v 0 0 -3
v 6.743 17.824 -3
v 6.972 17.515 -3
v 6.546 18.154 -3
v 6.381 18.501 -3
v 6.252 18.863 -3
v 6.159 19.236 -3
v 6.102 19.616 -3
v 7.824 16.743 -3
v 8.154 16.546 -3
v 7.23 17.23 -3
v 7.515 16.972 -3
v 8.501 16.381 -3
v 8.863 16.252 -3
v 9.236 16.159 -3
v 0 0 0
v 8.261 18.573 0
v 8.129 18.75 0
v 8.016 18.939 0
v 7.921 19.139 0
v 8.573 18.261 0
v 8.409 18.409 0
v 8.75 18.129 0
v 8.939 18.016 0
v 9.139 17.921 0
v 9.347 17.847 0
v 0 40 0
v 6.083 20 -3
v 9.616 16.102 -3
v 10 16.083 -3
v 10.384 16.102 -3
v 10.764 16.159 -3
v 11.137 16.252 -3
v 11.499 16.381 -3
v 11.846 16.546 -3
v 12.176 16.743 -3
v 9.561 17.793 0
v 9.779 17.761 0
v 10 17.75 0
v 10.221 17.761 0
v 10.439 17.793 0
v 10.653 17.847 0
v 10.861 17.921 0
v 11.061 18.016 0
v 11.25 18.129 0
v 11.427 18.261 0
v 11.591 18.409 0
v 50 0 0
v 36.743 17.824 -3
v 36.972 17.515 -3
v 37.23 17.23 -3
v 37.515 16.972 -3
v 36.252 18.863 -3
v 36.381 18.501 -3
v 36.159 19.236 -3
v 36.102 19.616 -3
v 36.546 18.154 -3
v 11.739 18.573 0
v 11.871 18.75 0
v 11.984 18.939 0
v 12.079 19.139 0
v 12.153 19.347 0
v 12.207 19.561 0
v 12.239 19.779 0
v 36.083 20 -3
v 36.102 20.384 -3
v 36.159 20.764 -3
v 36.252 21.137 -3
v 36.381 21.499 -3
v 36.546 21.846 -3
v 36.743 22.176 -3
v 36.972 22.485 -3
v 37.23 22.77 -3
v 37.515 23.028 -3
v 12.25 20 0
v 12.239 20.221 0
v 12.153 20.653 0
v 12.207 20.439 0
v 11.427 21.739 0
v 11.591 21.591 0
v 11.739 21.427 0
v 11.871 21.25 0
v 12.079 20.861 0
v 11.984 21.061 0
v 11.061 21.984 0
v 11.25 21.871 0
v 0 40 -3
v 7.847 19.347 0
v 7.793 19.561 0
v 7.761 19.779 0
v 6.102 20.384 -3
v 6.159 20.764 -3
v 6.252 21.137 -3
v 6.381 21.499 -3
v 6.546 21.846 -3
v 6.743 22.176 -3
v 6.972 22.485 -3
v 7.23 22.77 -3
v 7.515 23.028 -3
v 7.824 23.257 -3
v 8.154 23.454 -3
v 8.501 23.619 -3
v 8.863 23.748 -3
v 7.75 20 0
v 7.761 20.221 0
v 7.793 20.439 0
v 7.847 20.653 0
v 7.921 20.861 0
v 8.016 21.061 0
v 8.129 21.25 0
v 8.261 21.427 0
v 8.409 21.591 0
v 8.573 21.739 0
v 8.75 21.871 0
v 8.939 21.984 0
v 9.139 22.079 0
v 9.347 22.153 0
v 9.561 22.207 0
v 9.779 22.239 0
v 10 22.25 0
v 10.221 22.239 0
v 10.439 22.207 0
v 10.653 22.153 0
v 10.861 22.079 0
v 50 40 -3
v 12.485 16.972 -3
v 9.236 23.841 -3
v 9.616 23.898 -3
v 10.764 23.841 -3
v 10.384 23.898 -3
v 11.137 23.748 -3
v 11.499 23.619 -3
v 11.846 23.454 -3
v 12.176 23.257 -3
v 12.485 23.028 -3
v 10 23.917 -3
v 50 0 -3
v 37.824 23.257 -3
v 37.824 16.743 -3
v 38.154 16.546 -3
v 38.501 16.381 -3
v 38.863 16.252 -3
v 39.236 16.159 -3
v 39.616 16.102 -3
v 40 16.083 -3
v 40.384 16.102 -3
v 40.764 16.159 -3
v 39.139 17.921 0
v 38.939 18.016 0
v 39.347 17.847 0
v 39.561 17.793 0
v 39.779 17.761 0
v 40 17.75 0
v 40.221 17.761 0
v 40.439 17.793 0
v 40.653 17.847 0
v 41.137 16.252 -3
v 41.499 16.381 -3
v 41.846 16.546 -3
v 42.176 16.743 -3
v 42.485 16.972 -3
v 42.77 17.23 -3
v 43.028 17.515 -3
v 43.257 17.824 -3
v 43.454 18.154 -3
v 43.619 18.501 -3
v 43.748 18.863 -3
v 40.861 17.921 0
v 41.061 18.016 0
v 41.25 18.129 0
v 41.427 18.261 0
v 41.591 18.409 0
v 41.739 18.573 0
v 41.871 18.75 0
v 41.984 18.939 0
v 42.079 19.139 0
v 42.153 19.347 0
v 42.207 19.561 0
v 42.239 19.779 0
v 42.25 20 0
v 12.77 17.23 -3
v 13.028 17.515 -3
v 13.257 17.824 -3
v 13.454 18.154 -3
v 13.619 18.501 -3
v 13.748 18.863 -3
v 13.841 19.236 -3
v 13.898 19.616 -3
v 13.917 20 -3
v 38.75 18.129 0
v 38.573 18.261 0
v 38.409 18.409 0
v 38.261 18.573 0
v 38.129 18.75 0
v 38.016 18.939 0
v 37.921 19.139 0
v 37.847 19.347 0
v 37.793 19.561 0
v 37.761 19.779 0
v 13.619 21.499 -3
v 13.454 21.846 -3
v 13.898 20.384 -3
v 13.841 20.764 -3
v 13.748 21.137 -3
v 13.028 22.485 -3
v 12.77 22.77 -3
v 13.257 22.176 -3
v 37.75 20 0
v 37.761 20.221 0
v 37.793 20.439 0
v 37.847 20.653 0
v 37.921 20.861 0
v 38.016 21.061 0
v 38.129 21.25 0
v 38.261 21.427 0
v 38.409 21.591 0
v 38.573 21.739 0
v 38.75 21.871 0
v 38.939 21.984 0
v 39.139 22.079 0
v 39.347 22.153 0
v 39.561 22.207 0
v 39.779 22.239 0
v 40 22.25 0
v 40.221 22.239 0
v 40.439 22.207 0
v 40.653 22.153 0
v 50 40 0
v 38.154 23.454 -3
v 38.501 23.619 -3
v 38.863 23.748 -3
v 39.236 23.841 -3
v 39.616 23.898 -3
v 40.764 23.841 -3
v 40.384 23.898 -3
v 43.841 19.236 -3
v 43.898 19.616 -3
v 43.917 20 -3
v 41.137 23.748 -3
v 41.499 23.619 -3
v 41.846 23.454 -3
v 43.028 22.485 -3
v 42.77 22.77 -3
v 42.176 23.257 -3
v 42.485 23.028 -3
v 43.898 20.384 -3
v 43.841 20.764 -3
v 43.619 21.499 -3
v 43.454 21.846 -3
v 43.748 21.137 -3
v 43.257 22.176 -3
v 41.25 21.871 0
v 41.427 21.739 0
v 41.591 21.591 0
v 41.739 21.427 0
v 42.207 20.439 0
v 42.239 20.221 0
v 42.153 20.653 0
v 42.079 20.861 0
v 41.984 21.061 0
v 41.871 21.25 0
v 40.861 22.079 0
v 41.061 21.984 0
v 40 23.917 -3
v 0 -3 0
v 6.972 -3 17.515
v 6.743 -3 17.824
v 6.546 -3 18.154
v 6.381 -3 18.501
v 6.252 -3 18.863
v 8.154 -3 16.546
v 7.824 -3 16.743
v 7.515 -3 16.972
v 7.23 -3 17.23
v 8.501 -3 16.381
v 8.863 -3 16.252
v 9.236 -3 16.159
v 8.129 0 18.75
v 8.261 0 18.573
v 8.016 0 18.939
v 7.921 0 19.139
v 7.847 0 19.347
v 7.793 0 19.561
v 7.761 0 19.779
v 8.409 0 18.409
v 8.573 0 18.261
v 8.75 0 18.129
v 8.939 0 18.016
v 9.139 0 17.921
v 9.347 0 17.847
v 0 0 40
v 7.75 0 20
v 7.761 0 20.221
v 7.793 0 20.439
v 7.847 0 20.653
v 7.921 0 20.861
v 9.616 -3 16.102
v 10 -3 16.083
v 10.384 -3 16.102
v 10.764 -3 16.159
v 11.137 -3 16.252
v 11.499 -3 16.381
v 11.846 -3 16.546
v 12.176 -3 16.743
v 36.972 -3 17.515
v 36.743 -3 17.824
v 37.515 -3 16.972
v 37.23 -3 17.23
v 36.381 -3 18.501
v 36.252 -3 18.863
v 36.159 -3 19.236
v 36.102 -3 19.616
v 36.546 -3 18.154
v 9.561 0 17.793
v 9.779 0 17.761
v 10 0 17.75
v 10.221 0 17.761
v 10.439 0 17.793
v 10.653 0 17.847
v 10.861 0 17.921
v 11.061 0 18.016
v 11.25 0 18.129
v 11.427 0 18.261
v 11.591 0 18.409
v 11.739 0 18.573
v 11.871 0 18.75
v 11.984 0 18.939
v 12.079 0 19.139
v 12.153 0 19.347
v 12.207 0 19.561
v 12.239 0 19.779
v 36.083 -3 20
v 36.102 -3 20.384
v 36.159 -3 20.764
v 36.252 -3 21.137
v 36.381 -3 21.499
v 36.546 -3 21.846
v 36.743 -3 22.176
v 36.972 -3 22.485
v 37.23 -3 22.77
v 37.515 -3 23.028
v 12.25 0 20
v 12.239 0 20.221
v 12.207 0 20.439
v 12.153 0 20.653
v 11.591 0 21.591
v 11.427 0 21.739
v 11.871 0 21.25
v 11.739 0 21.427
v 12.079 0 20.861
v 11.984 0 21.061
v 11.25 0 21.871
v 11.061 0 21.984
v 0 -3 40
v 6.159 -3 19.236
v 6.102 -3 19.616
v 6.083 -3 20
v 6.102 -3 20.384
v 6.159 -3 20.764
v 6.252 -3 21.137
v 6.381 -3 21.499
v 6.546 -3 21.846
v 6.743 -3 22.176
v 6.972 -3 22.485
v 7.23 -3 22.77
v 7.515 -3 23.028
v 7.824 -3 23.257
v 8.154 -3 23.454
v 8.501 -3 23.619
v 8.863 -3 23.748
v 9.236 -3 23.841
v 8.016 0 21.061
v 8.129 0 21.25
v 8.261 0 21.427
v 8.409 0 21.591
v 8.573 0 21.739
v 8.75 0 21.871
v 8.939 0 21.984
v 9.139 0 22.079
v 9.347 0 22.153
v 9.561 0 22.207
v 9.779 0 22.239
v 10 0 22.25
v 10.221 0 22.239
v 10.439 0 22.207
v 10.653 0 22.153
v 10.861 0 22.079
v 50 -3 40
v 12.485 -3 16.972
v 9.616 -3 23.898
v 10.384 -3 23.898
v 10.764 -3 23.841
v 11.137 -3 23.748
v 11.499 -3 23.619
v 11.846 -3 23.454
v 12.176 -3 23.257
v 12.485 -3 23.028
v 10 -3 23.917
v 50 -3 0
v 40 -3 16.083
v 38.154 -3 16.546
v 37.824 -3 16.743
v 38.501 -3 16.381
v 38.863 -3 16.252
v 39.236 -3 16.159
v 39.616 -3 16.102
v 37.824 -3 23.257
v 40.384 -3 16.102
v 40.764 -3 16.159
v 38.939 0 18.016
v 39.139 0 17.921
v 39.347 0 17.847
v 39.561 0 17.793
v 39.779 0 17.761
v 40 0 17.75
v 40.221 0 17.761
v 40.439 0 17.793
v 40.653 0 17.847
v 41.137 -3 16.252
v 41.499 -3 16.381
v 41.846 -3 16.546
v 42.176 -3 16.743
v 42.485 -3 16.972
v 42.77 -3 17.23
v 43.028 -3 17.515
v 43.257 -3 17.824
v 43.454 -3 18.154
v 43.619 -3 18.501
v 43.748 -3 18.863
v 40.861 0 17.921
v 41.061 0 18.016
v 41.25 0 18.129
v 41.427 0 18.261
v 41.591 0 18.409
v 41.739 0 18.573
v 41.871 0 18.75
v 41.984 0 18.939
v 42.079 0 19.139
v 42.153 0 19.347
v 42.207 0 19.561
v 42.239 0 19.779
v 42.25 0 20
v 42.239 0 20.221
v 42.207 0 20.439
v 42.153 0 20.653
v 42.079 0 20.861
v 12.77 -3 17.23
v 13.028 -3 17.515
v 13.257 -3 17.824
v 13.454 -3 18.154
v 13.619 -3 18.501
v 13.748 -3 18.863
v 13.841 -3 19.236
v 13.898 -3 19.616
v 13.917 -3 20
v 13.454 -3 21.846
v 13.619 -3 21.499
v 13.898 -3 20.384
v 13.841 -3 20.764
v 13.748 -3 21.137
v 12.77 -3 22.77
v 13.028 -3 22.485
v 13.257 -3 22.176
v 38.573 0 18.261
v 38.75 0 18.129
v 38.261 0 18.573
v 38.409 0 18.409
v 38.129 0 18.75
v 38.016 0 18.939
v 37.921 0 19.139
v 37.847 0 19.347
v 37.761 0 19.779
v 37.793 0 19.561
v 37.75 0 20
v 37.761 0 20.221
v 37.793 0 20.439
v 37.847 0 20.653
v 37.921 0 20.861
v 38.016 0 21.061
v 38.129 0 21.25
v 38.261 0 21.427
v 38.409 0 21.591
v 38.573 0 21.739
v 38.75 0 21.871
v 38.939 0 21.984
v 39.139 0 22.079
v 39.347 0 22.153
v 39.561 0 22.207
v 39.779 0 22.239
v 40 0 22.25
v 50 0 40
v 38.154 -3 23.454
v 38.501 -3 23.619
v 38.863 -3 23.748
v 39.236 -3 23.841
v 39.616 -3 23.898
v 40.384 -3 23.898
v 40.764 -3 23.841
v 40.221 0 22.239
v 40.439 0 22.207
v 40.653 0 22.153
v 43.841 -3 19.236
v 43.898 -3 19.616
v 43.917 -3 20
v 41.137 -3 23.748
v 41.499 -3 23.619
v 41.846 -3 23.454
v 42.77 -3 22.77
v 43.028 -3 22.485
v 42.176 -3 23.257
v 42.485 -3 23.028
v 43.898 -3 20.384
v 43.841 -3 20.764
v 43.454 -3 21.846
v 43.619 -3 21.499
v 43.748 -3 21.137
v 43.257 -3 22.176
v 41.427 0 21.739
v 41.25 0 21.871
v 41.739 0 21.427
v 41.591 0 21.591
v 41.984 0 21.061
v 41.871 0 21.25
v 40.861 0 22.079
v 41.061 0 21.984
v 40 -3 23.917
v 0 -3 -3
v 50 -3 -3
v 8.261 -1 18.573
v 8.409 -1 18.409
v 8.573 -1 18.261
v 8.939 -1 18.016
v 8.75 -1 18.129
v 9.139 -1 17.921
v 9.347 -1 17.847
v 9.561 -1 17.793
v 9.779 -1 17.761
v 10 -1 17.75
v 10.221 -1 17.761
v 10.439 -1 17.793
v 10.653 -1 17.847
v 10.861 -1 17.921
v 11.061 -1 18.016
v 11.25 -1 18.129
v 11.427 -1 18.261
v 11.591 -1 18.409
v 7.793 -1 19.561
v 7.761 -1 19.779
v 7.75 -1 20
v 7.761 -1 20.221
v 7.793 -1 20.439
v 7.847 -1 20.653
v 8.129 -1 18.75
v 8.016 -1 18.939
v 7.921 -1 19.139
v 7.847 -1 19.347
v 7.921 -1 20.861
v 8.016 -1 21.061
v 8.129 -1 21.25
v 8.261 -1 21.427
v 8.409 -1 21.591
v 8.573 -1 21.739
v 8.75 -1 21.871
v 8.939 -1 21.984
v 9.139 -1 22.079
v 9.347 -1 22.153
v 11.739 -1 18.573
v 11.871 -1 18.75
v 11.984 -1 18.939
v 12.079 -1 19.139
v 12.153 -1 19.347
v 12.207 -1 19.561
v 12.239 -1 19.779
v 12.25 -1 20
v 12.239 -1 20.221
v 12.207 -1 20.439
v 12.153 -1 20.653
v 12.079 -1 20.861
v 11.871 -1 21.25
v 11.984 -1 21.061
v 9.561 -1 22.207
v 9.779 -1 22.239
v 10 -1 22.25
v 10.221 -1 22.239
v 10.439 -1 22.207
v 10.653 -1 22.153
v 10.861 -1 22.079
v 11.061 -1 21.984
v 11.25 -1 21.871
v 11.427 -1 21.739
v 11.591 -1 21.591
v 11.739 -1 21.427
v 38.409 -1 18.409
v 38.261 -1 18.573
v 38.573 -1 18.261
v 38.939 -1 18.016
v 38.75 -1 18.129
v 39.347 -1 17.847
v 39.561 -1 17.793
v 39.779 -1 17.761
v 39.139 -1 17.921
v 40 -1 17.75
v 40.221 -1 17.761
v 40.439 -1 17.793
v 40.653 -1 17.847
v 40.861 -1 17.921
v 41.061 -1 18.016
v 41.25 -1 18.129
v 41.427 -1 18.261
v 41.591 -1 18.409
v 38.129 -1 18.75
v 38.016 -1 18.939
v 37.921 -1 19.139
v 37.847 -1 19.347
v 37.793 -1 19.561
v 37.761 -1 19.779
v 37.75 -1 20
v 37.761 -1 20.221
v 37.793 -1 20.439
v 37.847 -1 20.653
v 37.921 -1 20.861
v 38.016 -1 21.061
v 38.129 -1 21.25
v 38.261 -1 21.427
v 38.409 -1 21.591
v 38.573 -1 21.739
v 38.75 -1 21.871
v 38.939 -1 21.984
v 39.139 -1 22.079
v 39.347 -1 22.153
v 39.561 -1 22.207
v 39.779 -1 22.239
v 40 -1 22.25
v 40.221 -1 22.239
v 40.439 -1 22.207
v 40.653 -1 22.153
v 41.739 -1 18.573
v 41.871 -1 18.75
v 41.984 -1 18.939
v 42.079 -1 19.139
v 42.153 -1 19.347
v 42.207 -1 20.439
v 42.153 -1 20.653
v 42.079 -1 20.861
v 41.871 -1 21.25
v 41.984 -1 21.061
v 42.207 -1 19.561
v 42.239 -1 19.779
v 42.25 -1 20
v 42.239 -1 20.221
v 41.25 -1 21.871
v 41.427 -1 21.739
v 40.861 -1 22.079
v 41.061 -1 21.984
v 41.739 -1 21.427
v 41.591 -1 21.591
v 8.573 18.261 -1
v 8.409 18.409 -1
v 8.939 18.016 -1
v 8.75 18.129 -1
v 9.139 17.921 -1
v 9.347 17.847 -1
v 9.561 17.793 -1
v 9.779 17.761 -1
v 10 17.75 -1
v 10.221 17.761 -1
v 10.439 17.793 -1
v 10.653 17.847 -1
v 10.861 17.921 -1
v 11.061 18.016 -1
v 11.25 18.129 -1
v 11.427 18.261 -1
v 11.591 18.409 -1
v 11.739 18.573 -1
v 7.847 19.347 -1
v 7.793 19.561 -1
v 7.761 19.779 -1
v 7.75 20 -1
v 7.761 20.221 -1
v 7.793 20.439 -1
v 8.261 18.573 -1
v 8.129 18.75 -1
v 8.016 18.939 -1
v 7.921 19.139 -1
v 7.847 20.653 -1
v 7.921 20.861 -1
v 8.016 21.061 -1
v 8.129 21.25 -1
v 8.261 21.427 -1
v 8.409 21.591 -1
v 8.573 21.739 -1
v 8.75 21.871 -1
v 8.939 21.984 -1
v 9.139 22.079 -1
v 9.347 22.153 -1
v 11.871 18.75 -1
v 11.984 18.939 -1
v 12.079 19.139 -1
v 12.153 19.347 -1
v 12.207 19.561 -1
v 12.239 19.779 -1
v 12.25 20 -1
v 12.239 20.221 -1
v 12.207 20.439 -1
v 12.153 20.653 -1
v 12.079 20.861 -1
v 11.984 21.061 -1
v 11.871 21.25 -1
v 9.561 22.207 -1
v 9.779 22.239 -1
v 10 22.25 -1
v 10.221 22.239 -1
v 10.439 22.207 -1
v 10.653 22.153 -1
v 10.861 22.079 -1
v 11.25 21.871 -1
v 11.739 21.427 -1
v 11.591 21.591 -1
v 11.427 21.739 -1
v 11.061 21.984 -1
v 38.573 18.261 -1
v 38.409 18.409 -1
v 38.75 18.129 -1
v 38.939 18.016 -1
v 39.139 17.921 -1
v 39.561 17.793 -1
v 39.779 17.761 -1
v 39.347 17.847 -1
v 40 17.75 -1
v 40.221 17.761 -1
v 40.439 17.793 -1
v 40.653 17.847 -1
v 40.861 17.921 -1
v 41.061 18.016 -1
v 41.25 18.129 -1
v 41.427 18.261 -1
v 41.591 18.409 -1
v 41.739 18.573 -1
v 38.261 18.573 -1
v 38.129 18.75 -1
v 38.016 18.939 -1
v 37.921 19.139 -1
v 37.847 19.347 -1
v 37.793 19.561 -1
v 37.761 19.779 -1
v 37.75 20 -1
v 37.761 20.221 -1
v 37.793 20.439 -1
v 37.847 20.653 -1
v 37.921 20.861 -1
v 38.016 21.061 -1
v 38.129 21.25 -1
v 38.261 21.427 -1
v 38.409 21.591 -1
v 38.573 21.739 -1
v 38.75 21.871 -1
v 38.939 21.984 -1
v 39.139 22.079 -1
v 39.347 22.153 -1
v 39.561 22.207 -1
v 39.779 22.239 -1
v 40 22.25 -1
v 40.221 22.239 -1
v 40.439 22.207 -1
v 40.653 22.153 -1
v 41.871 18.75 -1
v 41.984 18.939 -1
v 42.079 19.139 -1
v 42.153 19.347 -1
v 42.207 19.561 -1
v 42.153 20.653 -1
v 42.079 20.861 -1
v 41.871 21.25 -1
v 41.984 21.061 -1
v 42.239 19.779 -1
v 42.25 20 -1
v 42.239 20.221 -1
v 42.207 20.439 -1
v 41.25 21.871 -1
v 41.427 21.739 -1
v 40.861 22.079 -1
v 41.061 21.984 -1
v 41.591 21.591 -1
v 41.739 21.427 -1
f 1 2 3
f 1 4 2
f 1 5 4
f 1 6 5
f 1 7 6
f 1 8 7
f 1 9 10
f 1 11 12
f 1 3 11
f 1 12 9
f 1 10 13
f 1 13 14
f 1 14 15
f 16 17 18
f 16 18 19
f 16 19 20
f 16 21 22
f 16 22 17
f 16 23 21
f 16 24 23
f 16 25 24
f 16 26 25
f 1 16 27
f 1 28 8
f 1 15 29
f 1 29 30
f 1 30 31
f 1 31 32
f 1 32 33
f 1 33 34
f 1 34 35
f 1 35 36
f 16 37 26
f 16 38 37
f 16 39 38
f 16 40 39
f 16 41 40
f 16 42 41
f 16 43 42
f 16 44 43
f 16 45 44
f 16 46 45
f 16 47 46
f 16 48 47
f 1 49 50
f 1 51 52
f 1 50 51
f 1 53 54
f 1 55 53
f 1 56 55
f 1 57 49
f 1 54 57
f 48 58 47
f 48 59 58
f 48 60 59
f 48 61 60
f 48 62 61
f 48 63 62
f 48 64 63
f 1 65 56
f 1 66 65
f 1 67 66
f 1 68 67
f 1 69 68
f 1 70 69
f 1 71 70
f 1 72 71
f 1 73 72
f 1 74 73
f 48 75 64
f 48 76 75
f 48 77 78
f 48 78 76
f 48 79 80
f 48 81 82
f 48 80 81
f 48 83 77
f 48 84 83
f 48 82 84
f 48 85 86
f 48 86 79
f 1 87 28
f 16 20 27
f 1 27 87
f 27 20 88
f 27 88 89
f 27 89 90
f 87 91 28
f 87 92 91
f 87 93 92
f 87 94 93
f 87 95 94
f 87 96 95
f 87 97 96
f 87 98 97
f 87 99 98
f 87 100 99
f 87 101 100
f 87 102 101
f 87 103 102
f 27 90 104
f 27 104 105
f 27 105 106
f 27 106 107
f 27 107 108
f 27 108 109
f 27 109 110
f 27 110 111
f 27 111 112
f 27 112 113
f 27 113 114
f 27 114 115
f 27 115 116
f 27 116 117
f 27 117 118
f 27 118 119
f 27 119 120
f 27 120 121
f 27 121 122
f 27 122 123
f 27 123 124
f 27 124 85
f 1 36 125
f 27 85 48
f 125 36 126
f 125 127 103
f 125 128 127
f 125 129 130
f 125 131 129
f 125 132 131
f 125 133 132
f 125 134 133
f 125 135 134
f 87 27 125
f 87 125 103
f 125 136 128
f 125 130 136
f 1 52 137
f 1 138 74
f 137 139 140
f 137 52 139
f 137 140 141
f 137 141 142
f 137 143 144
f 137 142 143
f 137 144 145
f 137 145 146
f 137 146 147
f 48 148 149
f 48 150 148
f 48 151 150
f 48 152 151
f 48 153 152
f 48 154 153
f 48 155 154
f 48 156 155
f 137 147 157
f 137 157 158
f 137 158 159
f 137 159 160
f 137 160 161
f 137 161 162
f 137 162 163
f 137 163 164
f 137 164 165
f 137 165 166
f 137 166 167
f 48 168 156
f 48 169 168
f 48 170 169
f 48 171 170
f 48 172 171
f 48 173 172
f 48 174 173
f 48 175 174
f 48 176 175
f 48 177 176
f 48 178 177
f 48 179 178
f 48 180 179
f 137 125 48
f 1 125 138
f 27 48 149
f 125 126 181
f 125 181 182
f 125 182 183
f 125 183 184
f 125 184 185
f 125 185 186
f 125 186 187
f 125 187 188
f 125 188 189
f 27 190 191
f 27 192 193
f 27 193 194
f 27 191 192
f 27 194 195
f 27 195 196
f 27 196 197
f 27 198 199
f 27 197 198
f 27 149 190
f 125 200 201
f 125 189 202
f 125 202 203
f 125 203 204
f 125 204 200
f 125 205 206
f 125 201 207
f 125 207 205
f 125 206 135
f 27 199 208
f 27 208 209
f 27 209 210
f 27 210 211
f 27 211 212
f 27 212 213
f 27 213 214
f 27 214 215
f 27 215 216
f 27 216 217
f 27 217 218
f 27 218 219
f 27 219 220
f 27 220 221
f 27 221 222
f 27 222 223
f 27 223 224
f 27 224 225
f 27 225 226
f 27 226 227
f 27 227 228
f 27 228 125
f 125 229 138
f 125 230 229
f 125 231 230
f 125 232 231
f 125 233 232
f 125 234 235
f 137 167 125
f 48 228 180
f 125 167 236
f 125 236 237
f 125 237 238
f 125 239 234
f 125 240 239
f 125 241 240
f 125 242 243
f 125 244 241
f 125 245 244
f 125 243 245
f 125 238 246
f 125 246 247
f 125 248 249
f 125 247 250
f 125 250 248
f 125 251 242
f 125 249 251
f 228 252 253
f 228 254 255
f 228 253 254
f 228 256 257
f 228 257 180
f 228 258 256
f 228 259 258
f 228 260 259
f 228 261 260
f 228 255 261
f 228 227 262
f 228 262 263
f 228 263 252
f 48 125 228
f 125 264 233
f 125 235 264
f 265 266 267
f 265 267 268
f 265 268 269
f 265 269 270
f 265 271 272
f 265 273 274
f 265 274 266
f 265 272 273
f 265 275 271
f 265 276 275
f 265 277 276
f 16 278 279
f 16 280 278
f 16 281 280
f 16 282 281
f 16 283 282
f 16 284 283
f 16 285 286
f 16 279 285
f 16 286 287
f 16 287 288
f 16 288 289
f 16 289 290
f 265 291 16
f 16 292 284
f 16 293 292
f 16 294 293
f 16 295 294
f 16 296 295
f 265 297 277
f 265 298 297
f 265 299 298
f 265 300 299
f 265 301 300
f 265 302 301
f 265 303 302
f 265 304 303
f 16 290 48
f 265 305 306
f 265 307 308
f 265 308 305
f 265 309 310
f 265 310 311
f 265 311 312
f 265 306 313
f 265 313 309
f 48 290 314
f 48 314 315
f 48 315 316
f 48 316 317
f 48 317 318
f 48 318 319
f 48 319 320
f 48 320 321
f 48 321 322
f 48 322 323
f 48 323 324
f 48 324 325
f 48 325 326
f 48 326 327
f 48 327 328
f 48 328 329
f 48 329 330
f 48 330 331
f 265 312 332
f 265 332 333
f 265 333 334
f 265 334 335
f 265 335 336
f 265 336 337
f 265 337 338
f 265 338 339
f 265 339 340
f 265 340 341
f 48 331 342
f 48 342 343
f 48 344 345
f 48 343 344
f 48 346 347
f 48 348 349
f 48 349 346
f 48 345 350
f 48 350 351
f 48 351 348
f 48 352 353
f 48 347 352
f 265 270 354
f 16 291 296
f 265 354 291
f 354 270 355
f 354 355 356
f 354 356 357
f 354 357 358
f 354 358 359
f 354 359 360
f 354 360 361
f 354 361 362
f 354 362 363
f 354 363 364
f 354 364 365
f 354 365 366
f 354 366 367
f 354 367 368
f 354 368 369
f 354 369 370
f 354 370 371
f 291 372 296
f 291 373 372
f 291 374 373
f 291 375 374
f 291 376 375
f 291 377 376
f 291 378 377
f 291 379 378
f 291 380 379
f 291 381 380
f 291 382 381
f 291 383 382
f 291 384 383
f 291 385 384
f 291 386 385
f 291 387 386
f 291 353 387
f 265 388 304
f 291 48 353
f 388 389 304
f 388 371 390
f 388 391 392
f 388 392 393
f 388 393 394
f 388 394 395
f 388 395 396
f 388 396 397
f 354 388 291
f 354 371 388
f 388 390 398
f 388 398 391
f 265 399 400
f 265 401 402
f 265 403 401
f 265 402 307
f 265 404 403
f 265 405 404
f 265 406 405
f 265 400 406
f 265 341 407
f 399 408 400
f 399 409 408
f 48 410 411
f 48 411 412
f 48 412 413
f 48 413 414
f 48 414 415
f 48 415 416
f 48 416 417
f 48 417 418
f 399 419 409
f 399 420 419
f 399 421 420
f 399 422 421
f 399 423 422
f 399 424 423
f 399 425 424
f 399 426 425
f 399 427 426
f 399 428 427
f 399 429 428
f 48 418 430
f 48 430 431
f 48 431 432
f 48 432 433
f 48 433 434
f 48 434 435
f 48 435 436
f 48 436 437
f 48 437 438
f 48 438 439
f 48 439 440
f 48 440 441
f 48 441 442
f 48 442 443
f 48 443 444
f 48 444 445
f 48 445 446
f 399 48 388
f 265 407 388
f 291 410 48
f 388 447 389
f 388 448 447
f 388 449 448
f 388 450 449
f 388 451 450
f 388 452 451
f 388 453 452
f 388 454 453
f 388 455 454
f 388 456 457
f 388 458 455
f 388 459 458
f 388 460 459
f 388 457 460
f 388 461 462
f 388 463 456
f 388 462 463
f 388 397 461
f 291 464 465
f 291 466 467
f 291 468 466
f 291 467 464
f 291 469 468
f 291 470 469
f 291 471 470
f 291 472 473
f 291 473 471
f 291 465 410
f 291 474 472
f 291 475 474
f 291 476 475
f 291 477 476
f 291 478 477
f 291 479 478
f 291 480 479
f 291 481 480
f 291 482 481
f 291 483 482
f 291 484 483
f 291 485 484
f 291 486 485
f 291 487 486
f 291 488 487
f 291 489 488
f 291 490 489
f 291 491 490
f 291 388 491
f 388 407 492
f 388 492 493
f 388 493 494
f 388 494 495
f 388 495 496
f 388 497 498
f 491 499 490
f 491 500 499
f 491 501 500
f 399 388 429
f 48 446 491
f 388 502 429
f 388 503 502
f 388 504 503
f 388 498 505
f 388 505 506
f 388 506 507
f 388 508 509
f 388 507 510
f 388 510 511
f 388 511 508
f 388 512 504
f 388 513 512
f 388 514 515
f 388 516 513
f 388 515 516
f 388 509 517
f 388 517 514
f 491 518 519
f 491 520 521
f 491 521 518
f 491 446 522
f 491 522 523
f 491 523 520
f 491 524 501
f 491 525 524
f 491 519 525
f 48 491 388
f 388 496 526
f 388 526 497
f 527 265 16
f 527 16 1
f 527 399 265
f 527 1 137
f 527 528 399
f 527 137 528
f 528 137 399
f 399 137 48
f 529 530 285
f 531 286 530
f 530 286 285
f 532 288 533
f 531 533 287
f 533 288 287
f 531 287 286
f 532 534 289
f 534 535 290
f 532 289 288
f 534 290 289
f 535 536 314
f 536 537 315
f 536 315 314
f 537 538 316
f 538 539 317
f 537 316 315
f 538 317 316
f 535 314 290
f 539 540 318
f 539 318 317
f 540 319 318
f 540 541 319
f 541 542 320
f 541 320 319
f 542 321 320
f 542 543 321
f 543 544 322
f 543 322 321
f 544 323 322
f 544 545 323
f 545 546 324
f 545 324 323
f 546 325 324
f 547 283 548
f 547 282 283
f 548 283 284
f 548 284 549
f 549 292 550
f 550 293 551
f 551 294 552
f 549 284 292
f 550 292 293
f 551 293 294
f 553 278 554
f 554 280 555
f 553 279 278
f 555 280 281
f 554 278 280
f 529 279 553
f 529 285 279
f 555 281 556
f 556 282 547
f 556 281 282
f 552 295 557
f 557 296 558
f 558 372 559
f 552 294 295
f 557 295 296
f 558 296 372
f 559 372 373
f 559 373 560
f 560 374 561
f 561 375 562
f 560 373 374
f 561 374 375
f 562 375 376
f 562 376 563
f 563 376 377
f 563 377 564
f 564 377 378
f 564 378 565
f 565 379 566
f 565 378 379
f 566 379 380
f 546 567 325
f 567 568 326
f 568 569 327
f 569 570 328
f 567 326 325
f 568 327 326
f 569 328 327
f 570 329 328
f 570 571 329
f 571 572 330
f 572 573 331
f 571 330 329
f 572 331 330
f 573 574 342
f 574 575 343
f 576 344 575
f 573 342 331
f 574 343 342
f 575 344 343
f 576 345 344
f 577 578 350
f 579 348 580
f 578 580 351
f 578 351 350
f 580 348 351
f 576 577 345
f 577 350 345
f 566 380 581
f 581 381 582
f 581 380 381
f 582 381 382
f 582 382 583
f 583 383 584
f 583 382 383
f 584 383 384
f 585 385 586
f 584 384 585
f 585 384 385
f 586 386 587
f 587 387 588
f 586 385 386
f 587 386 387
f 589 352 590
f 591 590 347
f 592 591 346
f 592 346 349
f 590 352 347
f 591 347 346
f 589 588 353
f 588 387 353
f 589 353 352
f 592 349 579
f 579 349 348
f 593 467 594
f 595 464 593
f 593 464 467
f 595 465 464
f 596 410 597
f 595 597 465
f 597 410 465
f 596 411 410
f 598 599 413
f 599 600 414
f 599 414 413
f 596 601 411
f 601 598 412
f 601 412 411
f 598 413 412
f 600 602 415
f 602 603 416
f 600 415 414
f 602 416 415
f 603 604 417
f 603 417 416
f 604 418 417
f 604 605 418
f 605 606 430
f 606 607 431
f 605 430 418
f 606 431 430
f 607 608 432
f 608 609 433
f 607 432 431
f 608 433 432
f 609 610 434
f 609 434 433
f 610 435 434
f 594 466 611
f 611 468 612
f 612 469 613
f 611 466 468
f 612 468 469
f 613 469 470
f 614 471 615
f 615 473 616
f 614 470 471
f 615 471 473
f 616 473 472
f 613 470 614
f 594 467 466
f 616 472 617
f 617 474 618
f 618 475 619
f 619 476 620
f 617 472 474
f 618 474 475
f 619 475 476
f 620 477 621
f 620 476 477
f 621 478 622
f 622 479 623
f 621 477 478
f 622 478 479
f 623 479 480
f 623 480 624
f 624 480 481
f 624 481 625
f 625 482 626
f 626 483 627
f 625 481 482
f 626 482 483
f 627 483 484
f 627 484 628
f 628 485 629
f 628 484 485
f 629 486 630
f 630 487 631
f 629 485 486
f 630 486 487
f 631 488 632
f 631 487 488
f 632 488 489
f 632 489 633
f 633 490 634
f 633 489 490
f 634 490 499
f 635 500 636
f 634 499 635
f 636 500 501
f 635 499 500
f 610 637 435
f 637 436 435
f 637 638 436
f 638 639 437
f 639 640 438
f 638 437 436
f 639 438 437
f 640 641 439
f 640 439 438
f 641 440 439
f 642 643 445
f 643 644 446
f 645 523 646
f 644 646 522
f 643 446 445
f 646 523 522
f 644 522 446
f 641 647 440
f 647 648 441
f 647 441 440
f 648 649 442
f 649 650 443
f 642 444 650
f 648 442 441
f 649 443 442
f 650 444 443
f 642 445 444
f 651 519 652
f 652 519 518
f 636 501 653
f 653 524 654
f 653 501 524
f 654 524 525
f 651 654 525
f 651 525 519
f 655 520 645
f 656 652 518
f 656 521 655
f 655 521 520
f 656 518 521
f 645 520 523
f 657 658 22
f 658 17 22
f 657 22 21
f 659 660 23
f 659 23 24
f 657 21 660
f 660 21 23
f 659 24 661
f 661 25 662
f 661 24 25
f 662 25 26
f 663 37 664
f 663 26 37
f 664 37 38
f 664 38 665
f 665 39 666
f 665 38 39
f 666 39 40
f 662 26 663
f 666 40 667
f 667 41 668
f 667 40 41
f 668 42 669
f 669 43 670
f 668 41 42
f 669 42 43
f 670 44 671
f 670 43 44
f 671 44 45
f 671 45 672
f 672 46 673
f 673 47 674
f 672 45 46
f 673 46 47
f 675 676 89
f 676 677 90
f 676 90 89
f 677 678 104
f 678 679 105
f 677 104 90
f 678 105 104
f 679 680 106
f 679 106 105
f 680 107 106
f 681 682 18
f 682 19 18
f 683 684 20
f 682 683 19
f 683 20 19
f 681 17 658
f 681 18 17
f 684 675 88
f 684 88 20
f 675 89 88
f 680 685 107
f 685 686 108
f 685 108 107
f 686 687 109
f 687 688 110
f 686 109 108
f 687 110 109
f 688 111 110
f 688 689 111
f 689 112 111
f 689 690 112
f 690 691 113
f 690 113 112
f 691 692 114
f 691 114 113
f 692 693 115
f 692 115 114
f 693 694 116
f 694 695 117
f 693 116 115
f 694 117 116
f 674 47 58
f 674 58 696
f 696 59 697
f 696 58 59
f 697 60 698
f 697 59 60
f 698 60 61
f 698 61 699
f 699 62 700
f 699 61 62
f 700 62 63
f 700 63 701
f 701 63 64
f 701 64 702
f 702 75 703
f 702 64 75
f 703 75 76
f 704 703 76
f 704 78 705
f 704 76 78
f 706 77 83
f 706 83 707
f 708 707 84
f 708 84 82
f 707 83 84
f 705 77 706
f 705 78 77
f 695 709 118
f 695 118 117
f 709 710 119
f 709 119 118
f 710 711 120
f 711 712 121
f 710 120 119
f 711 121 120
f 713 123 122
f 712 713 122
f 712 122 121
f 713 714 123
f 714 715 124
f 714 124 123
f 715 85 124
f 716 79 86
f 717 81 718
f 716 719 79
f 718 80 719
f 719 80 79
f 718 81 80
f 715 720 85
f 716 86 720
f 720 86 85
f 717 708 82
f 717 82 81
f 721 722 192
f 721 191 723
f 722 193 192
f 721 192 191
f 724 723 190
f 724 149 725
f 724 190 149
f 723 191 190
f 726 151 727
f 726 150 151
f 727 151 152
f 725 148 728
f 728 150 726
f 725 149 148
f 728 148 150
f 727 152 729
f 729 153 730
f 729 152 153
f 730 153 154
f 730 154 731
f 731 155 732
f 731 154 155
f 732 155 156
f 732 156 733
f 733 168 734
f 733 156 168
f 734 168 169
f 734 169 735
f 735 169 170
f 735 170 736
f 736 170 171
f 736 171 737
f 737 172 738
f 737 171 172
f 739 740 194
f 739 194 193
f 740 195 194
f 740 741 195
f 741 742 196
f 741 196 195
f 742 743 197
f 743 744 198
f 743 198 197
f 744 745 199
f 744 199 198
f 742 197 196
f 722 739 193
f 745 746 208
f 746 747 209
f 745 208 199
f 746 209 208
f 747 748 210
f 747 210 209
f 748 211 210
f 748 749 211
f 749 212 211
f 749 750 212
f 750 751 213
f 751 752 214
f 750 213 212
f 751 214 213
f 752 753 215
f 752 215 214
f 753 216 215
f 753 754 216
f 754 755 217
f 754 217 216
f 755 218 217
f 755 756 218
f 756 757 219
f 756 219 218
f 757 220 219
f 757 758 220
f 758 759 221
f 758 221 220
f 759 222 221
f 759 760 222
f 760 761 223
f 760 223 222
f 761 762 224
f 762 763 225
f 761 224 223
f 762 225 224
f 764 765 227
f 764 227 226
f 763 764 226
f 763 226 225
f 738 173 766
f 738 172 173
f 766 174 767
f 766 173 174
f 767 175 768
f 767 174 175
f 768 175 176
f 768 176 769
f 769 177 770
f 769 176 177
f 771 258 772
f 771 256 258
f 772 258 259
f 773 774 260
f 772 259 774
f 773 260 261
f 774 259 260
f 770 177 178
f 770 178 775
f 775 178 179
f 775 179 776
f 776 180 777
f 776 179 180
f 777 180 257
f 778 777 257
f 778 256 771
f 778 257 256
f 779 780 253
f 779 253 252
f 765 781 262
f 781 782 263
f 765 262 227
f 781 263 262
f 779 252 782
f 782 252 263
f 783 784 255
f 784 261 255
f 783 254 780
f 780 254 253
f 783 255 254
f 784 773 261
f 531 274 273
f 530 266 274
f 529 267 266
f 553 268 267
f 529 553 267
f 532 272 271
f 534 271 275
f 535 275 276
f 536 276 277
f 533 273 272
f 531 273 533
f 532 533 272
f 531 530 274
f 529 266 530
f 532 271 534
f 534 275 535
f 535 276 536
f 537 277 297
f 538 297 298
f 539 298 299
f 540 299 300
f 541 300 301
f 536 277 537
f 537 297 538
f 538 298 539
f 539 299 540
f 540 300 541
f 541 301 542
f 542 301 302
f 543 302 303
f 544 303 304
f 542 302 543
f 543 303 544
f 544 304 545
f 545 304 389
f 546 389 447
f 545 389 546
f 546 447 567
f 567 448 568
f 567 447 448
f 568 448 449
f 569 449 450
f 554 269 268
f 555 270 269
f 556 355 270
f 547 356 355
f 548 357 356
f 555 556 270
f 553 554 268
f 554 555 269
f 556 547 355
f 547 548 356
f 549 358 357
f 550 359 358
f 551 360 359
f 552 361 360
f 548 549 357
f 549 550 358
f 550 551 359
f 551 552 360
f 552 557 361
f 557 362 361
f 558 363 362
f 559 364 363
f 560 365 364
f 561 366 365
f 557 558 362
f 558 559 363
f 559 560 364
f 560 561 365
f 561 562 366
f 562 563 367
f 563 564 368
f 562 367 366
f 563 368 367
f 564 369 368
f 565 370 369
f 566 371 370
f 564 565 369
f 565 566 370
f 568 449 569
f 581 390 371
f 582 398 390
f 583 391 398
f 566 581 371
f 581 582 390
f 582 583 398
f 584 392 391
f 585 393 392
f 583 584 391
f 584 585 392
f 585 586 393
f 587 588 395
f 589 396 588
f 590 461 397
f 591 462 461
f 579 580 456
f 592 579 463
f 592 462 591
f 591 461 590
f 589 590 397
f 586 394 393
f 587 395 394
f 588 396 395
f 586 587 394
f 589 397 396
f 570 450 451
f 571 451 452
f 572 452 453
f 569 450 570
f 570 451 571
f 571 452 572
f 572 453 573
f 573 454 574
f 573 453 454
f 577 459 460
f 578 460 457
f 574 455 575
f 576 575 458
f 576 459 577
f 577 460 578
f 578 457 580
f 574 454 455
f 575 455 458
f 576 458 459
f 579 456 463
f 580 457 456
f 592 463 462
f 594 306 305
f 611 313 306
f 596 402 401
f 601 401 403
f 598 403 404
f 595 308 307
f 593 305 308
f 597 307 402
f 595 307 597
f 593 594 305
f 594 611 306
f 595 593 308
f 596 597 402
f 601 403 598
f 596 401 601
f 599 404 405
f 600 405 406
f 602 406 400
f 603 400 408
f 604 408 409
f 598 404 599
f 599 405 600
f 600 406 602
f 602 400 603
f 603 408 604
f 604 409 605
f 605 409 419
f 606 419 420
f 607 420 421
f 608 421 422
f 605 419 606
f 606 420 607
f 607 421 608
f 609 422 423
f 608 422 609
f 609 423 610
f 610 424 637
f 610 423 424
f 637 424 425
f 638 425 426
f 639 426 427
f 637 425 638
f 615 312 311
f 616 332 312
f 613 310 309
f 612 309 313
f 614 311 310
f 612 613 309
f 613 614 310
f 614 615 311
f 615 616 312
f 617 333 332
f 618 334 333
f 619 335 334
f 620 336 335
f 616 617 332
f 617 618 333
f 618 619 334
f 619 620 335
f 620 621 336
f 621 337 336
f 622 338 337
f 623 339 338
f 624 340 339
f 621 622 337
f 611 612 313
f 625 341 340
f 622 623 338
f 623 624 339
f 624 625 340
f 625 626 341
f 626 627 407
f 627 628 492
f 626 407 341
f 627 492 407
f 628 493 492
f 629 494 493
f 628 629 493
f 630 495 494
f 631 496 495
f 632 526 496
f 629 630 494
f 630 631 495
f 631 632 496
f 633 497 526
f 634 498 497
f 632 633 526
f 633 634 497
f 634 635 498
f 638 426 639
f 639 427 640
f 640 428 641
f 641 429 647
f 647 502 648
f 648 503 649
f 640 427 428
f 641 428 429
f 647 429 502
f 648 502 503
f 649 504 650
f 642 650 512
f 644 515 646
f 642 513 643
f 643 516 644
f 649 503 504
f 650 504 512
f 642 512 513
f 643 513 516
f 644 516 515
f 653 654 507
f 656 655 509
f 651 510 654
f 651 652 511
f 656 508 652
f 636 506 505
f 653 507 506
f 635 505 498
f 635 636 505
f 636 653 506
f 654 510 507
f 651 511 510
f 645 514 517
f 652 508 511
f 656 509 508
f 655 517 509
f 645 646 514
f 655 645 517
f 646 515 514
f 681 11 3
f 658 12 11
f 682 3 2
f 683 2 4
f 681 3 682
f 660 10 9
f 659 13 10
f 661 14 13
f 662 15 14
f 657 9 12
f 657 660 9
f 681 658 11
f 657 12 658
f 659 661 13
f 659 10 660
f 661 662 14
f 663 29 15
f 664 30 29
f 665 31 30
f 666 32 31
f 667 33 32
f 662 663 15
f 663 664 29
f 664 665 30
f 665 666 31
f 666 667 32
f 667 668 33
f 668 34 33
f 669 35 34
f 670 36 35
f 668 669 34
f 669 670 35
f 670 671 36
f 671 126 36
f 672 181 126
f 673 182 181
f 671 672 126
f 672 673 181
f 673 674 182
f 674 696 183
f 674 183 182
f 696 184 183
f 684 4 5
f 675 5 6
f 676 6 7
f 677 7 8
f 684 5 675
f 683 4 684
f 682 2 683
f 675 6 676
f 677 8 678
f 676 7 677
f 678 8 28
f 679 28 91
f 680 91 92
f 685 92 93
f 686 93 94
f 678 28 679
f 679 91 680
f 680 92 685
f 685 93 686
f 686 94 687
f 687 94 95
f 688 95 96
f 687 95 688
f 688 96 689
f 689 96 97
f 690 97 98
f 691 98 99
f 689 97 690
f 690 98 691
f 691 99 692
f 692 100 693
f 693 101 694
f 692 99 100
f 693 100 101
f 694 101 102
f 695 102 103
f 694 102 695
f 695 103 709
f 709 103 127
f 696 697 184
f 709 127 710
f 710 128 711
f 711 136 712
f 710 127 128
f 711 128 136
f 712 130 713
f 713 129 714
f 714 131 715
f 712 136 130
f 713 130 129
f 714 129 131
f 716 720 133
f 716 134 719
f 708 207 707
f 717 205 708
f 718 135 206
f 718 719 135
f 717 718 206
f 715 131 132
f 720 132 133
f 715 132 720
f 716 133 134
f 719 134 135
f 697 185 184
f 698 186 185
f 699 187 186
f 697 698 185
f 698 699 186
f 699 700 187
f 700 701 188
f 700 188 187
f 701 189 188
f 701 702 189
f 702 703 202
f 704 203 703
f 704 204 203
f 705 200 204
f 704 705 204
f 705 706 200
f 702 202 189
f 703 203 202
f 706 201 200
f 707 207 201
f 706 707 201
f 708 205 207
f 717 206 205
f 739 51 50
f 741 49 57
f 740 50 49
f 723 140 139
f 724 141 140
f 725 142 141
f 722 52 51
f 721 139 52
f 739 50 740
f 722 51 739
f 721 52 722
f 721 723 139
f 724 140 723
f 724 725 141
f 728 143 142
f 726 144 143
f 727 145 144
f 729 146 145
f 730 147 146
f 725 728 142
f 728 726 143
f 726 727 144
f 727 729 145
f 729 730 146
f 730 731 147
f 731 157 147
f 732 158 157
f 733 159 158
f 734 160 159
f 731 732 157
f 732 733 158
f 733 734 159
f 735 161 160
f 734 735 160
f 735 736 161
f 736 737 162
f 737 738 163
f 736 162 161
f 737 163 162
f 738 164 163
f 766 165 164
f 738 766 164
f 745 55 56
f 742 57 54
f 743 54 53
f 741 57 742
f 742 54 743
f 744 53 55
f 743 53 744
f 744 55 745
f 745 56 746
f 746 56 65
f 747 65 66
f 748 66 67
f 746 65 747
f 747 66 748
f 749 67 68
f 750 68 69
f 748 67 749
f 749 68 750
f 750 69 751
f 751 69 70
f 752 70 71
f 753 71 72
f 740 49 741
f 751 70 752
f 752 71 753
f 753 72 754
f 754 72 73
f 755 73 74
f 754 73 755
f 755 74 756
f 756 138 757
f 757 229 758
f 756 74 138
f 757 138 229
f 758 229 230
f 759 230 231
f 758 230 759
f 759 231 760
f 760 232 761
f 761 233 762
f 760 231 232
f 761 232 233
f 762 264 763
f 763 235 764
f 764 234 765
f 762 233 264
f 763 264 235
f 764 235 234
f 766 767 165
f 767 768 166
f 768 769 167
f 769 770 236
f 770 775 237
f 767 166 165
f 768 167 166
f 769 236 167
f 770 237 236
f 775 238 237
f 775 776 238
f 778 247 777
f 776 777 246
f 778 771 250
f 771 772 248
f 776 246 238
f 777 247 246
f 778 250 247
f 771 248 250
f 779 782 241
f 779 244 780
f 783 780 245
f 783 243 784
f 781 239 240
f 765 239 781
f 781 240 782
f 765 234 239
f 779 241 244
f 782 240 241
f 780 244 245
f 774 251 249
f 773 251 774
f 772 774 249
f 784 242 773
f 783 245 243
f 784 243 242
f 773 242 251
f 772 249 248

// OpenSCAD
$fn = 64;

// パラメータ
width = 50;       // 幅 (X)
flange_h = 40;    // 水平面の奥行き (Y)
flange_v = 40;    // 垂直面の高さ (Z)
thickness = 3;    // 板厚

hole_d = 4.5;     // 貫通穴径
cs_d = 8.0;       // 皿穴最大径
cs_depth = 2.0;   // 皿穴深さ
edge_margin = 10; // 端からの穴位置

module countersunk_hole() {
    // 外側(z=0)から内側(+z方向)に向けて貫通する皿穴
    translate([0, 0, -0.1]) {
        cylinder(d = hole_d, h = thickness + 0.2);
        cylinder(d1 = cs_d, d2 = hole_d, h = cs_depth + 0.1);
    }
}

difference() {
    // L字金具の本体
    union() {
        // 水平面
        translate([0, 0, -thickness])
            cube([width, flange_h, thickness]);
        // 垂直面
        translate([0, -thickness, 0])
            cube([width, thickness, flange_v]);
        // コーナー接合部
        translate([0, -thickness, -thickness])
            cube([width, thickness, thickness]);
    }

    // 水平面の皿穴 (外側 Z=-3 から上向き)
    for (x = [edge_margin, width - edge_margin]) {
        translate([x, flange_h / 2, -thickness])
            countersunk_hole();
    }

    // 垂直面の皿穴 (外側 Y=-3 から奥向き)
    for (x = [edge_margin, width - edge_margin]) {
        translate([x, -thickness, flange_v / 2])
            rotate([-90, 0, 0])
                countersunk_hole();
    }
}
